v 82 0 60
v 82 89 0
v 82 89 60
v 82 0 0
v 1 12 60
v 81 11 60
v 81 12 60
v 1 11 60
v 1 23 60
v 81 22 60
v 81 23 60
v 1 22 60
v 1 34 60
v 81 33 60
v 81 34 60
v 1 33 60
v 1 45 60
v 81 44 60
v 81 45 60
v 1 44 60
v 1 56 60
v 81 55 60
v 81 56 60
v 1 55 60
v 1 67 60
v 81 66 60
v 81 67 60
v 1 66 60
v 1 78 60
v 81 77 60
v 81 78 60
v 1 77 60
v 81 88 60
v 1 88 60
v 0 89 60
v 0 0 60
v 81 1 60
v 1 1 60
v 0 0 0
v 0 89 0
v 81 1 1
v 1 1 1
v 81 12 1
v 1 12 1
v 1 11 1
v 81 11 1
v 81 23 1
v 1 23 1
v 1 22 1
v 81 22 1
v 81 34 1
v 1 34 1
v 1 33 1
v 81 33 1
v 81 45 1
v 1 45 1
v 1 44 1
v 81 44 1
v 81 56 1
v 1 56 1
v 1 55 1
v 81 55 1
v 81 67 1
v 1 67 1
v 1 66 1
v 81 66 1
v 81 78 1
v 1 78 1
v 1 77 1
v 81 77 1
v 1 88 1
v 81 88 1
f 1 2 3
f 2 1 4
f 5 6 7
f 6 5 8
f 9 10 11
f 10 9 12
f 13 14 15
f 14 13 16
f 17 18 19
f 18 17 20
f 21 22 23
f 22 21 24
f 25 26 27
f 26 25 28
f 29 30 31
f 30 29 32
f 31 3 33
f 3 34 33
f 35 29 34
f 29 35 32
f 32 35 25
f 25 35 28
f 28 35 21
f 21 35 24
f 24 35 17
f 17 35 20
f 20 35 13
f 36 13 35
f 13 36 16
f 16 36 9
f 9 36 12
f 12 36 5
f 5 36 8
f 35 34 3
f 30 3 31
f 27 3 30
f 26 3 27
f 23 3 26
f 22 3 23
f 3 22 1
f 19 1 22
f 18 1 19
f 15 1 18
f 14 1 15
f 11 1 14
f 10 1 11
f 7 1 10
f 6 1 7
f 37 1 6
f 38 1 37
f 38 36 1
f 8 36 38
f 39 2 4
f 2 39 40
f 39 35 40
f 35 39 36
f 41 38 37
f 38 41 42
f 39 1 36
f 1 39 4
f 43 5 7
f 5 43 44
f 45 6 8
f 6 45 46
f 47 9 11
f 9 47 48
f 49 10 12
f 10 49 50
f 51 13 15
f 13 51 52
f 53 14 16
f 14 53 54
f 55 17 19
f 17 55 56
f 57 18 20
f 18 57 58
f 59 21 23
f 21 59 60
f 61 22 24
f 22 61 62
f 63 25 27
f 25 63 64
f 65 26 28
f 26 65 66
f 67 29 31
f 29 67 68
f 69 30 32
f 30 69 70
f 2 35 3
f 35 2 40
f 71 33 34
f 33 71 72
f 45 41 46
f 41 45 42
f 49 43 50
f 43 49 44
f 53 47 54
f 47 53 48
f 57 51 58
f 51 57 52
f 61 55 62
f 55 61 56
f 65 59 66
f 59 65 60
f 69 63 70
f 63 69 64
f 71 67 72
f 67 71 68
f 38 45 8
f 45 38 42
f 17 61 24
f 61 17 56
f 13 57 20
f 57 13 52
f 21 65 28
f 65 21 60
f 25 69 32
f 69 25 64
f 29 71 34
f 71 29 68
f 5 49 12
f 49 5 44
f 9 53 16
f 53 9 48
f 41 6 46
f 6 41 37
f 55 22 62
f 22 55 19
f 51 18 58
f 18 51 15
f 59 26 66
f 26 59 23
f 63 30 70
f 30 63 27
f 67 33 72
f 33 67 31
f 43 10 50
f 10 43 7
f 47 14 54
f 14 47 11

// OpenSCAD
// The width of the inside of a slot for holding a phone (horizontal axis)
slot_width = 80;

// The height of the inside of a slot for holding a phone (horizontal axis)
slot_height = 10;

// The height of the organizer itself
box_size = 60;

// The thickness of the walls between the phones, around the box and its floor
thickness = 1;

// The number of slots in the organizer
slot_count = 8;

// Front wall, N slots, N - 1 walls between slots and back wall
box_height = thickness + (slot_height + thickness) * slot_count;

// Left wall + slot size + right wall
box_width = thickness + slot_width + thickness;

// Floor
cube([box_width, box_height, thickness]);

// Left wall
translate([0, 0, thickness])
cube([thickness, box_height, box_size - thickness]);

// Left wall
translate([box_width - thickness, 0, thickness])
cube([thickness, box_height, box_size - thickness]);

// Front wall
cube([box_width, thickness, box_size]);

// Slot walls and back wall
for (index = [0:slot_count]) {
  translate([0, index * (slot_height + thickness), 0])
  cube([box_width, thickness, box_size]);
}
